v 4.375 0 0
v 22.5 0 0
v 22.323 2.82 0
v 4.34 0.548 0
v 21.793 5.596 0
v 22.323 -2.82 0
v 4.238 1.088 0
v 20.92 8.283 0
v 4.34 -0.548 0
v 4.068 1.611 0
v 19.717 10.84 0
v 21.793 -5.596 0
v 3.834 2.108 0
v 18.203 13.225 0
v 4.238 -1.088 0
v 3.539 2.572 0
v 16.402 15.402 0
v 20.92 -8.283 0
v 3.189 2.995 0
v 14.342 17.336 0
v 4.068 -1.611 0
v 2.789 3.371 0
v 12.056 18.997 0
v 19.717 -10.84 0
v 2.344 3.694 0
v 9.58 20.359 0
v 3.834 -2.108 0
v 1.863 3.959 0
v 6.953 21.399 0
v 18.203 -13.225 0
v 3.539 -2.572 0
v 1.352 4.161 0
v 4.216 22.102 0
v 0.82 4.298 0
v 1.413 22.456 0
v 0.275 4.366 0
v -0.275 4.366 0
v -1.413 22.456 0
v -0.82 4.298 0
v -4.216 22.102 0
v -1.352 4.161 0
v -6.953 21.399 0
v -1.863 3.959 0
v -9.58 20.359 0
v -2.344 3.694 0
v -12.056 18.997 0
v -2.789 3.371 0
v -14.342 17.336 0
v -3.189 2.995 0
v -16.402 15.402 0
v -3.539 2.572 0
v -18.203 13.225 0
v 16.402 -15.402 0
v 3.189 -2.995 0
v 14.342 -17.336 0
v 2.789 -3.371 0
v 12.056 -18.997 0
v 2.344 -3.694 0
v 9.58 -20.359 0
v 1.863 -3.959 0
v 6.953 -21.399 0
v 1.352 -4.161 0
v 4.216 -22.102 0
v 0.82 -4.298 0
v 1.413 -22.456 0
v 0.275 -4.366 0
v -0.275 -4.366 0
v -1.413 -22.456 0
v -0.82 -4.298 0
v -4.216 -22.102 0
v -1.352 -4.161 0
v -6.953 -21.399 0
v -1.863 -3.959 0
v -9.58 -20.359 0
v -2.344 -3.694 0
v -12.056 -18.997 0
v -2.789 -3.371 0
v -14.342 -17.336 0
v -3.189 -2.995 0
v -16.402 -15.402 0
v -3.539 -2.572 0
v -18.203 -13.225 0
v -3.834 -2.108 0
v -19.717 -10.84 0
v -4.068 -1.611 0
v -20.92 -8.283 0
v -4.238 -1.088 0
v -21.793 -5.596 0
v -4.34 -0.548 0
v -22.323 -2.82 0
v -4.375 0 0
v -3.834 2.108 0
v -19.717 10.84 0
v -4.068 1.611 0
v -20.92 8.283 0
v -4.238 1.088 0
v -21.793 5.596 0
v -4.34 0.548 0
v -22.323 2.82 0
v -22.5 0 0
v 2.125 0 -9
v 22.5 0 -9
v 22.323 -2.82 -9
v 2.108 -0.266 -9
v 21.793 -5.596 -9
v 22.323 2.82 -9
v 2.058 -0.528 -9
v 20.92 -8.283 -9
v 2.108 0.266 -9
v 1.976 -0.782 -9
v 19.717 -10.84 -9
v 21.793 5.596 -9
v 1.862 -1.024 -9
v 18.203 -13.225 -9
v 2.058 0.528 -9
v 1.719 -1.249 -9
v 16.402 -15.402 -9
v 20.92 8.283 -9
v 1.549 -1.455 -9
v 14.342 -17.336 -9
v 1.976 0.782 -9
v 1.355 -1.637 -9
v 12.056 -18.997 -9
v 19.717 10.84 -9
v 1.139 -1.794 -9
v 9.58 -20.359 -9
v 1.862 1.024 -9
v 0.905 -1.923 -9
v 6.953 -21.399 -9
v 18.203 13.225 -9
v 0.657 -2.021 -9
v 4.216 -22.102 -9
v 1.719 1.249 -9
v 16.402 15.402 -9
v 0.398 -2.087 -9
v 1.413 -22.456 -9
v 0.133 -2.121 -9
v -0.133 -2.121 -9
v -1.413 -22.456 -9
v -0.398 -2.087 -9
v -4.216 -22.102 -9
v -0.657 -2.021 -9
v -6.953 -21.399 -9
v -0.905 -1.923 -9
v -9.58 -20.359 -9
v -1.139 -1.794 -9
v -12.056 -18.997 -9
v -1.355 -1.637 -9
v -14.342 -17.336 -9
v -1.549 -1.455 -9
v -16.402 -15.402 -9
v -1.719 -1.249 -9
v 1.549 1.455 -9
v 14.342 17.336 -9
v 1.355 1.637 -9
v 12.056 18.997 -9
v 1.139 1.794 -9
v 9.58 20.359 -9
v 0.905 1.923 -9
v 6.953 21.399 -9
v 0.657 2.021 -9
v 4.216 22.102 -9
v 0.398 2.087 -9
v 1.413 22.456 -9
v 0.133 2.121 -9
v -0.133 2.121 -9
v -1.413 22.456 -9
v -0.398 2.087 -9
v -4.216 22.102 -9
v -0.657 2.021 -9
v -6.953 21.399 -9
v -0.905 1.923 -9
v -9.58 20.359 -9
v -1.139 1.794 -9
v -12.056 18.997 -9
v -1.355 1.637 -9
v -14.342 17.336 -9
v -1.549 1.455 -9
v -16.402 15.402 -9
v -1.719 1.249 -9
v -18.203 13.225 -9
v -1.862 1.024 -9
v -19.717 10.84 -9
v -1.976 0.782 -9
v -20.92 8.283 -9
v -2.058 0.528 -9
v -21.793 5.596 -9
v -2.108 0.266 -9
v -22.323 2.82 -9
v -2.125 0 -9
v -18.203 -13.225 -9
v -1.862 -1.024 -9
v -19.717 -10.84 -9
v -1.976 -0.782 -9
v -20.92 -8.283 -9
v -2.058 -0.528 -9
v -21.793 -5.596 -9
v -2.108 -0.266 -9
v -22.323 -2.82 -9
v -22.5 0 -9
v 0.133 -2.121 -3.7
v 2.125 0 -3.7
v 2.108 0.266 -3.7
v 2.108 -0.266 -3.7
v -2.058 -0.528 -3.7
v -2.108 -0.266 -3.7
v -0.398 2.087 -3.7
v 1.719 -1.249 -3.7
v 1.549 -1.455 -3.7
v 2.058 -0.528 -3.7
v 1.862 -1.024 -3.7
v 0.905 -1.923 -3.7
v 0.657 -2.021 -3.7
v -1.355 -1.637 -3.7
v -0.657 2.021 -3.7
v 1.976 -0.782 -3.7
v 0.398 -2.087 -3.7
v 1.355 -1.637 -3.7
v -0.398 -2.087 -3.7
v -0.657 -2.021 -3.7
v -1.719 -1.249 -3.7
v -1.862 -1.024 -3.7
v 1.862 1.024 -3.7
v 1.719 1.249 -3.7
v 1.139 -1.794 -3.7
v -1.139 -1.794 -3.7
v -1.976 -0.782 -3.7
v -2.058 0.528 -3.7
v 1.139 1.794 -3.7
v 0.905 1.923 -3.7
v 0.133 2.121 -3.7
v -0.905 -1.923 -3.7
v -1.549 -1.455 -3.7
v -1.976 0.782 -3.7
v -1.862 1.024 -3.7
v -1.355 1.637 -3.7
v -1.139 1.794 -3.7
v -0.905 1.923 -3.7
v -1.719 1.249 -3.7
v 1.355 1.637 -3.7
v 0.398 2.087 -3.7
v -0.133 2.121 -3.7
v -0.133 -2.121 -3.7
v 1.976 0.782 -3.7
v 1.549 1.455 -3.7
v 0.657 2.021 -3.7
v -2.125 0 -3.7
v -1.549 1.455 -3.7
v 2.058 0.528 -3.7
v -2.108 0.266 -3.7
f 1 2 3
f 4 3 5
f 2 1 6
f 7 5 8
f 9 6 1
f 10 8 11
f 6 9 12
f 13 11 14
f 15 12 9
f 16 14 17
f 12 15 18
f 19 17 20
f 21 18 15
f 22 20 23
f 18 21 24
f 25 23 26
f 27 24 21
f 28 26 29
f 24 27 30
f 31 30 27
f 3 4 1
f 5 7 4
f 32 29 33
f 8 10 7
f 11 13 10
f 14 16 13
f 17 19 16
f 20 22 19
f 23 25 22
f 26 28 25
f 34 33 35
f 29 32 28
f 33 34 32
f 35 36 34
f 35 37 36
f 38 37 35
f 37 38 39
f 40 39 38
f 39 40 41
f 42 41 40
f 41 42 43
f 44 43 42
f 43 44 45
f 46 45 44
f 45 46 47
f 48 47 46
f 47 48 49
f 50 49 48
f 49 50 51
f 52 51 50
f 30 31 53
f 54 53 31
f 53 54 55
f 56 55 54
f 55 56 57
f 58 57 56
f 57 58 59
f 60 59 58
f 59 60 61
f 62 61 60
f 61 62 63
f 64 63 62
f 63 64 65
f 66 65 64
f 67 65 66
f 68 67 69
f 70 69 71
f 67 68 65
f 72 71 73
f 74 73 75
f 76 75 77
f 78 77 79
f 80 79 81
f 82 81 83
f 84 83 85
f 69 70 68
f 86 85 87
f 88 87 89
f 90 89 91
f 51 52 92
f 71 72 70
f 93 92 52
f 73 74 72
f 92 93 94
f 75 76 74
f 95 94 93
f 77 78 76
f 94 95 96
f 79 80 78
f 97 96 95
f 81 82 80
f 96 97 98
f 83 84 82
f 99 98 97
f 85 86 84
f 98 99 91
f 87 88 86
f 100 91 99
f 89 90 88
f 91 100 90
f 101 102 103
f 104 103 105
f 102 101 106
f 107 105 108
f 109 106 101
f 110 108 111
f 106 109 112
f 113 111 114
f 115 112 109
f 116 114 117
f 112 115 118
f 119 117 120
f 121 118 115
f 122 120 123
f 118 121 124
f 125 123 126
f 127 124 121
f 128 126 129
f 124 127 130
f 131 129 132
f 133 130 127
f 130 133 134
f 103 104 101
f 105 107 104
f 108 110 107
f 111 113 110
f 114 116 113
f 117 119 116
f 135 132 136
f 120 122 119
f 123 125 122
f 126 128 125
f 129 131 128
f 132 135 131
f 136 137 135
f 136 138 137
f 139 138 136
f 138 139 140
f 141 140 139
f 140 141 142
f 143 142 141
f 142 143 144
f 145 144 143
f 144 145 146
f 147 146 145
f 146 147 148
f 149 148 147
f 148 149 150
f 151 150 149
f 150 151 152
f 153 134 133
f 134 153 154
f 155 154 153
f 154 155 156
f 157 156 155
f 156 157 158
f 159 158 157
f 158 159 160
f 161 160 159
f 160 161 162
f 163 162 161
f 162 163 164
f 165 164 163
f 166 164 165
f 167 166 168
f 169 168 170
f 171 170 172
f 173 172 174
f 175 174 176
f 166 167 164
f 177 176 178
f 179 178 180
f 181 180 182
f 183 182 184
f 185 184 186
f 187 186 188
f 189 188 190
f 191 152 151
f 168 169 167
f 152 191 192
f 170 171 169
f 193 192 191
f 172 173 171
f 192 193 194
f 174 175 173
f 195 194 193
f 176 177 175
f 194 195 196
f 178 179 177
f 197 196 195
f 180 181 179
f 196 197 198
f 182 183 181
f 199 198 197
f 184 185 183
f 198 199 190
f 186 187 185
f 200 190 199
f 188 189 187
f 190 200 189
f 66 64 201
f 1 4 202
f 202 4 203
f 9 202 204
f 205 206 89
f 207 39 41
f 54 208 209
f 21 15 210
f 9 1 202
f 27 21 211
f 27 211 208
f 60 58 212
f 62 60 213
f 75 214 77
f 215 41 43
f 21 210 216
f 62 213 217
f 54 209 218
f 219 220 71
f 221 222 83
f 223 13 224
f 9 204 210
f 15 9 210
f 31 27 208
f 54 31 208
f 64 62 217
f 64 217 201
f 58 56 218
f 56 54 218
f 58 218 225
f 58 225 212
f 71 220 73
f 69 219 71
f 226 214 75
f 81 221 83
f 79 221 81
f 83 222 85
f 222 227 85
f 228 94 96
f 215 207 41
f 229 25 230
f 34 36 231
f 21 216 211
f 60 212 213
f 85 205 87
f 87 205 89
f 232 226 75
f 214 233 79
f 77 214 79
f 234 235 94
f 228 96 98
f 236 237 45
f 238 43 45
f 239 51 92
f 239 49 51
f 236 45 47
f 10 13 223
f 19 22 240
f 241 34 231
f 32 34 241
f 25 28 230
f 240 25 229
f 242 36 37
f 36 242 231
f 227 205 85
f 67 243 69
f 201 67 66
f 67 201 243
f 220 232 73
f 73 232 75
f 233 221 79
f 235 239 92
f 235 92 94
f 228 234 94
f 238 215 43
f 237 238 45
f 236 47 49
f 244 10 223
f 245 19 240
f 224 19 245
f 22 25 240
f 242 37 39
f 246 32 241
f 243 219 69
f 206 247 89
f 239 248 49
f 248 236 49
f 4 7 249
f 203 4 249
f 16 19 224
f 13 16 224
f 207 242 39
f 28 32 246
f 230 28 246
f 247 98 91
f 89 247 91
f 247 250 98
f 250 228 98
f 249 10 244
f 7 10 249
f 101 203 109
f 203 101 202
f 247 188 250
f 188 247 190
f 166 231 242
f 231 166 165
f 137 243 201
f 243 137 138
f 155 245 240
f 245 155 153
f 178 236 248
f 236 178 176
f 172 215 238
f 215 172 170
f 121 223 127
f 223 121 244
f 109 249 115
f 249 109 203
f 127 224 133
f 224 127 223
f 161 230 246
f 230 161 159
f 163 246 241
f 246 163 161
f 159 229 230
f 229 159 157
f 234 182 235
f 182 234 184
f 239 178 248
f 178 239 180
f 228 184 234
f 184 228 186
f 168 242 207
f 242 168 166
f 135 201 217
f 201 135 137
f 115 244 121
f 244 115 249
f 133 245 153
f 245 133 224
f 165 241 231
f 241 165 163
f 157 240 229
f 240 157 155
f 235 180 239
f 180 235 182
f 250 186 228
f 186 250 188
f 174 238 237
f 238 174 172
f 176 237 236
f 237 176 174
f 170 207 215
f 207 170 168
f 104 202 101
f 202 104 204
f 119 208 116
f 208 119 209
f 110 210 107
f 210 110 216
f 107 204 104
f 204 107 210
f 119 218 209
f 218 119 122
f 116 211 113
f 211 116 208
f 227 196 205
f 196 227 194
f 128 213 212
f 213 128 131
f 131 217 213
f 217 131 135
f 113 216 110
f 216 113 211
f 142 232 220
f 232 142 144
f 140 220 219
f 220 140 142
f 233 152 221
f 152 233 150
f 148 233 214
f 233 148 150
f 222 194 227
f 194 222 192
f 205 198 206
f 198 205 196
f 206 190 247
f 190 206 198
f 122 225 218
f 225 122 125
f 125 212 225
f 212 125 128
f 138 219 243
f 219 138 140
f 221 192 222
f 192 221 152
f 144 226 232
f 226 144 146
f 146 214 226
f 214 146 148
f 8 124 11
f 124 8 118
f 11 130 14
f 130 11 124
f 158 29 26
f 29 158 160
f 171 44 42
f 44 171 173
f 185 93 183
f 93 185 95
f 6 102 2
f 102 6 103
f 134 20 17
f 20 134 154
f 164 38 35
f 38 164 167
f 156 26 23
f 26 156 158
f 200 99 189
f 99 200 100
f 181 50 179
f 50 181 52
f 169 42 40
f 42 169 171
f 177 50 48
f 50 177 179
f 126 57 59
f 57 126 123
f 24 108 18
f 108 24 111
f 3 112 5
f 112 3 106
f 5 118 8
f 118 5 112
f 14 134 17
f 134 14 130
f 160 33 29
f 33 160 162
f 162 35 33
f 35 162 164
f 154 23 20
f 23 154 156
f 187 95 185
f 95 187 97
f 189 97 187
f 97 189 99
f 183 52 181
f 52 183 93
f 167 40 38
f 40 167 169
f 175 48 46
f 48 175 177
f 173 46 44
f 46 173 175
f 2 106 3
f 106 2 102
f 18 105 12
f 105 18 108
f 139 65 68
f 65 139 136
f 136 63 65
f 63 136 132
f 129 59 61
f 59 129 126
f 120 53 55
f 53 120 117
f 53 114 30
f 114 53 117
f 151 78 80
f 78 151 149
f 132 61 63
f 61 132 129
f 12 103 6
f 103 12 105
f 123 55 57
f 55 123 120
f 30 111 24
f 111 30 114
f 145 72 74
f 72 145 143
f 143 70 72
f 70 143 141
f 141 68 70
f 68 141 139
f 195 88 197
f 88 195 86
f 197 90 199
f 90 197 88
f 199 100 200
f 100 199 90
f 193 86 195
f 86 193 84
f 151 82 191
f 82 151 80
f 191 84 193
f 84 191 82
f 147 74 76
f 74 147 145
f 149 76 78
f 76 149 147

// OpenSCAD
$fn = 50;


difference() {
	union() {
		translate(v = [0, 0, -9.0000000000]) {
			cylinder(h = 9, r = 22.5000000000);
		}
	}
	union() {
		translate(v = [0, 0, 0]) {
			rotate(a = [0, 0, 0]) {
				difference() {
					union() {
						translate(v = [0, 0, -9.0000000000]) {
							cylinder(h = 9, r = 2.0000000000);
						}
						translate(v = [0, 0, -3.7000000000]) {
							cylinder(h = 3.7000000000, r1 = 2.1250000000, r2 = 4.3750000000);
						}
						translate(v = [0, 0, -9.0000000000]) {
							cylinder(h = 9, r = 2.1250000000);
						}
						translate(v = [0, 0, -9.0000000000]) {
							cylinder(h = 9, r = 2.0000000000);
						}
					}
					union();
				}
			}
		}
	}
}
